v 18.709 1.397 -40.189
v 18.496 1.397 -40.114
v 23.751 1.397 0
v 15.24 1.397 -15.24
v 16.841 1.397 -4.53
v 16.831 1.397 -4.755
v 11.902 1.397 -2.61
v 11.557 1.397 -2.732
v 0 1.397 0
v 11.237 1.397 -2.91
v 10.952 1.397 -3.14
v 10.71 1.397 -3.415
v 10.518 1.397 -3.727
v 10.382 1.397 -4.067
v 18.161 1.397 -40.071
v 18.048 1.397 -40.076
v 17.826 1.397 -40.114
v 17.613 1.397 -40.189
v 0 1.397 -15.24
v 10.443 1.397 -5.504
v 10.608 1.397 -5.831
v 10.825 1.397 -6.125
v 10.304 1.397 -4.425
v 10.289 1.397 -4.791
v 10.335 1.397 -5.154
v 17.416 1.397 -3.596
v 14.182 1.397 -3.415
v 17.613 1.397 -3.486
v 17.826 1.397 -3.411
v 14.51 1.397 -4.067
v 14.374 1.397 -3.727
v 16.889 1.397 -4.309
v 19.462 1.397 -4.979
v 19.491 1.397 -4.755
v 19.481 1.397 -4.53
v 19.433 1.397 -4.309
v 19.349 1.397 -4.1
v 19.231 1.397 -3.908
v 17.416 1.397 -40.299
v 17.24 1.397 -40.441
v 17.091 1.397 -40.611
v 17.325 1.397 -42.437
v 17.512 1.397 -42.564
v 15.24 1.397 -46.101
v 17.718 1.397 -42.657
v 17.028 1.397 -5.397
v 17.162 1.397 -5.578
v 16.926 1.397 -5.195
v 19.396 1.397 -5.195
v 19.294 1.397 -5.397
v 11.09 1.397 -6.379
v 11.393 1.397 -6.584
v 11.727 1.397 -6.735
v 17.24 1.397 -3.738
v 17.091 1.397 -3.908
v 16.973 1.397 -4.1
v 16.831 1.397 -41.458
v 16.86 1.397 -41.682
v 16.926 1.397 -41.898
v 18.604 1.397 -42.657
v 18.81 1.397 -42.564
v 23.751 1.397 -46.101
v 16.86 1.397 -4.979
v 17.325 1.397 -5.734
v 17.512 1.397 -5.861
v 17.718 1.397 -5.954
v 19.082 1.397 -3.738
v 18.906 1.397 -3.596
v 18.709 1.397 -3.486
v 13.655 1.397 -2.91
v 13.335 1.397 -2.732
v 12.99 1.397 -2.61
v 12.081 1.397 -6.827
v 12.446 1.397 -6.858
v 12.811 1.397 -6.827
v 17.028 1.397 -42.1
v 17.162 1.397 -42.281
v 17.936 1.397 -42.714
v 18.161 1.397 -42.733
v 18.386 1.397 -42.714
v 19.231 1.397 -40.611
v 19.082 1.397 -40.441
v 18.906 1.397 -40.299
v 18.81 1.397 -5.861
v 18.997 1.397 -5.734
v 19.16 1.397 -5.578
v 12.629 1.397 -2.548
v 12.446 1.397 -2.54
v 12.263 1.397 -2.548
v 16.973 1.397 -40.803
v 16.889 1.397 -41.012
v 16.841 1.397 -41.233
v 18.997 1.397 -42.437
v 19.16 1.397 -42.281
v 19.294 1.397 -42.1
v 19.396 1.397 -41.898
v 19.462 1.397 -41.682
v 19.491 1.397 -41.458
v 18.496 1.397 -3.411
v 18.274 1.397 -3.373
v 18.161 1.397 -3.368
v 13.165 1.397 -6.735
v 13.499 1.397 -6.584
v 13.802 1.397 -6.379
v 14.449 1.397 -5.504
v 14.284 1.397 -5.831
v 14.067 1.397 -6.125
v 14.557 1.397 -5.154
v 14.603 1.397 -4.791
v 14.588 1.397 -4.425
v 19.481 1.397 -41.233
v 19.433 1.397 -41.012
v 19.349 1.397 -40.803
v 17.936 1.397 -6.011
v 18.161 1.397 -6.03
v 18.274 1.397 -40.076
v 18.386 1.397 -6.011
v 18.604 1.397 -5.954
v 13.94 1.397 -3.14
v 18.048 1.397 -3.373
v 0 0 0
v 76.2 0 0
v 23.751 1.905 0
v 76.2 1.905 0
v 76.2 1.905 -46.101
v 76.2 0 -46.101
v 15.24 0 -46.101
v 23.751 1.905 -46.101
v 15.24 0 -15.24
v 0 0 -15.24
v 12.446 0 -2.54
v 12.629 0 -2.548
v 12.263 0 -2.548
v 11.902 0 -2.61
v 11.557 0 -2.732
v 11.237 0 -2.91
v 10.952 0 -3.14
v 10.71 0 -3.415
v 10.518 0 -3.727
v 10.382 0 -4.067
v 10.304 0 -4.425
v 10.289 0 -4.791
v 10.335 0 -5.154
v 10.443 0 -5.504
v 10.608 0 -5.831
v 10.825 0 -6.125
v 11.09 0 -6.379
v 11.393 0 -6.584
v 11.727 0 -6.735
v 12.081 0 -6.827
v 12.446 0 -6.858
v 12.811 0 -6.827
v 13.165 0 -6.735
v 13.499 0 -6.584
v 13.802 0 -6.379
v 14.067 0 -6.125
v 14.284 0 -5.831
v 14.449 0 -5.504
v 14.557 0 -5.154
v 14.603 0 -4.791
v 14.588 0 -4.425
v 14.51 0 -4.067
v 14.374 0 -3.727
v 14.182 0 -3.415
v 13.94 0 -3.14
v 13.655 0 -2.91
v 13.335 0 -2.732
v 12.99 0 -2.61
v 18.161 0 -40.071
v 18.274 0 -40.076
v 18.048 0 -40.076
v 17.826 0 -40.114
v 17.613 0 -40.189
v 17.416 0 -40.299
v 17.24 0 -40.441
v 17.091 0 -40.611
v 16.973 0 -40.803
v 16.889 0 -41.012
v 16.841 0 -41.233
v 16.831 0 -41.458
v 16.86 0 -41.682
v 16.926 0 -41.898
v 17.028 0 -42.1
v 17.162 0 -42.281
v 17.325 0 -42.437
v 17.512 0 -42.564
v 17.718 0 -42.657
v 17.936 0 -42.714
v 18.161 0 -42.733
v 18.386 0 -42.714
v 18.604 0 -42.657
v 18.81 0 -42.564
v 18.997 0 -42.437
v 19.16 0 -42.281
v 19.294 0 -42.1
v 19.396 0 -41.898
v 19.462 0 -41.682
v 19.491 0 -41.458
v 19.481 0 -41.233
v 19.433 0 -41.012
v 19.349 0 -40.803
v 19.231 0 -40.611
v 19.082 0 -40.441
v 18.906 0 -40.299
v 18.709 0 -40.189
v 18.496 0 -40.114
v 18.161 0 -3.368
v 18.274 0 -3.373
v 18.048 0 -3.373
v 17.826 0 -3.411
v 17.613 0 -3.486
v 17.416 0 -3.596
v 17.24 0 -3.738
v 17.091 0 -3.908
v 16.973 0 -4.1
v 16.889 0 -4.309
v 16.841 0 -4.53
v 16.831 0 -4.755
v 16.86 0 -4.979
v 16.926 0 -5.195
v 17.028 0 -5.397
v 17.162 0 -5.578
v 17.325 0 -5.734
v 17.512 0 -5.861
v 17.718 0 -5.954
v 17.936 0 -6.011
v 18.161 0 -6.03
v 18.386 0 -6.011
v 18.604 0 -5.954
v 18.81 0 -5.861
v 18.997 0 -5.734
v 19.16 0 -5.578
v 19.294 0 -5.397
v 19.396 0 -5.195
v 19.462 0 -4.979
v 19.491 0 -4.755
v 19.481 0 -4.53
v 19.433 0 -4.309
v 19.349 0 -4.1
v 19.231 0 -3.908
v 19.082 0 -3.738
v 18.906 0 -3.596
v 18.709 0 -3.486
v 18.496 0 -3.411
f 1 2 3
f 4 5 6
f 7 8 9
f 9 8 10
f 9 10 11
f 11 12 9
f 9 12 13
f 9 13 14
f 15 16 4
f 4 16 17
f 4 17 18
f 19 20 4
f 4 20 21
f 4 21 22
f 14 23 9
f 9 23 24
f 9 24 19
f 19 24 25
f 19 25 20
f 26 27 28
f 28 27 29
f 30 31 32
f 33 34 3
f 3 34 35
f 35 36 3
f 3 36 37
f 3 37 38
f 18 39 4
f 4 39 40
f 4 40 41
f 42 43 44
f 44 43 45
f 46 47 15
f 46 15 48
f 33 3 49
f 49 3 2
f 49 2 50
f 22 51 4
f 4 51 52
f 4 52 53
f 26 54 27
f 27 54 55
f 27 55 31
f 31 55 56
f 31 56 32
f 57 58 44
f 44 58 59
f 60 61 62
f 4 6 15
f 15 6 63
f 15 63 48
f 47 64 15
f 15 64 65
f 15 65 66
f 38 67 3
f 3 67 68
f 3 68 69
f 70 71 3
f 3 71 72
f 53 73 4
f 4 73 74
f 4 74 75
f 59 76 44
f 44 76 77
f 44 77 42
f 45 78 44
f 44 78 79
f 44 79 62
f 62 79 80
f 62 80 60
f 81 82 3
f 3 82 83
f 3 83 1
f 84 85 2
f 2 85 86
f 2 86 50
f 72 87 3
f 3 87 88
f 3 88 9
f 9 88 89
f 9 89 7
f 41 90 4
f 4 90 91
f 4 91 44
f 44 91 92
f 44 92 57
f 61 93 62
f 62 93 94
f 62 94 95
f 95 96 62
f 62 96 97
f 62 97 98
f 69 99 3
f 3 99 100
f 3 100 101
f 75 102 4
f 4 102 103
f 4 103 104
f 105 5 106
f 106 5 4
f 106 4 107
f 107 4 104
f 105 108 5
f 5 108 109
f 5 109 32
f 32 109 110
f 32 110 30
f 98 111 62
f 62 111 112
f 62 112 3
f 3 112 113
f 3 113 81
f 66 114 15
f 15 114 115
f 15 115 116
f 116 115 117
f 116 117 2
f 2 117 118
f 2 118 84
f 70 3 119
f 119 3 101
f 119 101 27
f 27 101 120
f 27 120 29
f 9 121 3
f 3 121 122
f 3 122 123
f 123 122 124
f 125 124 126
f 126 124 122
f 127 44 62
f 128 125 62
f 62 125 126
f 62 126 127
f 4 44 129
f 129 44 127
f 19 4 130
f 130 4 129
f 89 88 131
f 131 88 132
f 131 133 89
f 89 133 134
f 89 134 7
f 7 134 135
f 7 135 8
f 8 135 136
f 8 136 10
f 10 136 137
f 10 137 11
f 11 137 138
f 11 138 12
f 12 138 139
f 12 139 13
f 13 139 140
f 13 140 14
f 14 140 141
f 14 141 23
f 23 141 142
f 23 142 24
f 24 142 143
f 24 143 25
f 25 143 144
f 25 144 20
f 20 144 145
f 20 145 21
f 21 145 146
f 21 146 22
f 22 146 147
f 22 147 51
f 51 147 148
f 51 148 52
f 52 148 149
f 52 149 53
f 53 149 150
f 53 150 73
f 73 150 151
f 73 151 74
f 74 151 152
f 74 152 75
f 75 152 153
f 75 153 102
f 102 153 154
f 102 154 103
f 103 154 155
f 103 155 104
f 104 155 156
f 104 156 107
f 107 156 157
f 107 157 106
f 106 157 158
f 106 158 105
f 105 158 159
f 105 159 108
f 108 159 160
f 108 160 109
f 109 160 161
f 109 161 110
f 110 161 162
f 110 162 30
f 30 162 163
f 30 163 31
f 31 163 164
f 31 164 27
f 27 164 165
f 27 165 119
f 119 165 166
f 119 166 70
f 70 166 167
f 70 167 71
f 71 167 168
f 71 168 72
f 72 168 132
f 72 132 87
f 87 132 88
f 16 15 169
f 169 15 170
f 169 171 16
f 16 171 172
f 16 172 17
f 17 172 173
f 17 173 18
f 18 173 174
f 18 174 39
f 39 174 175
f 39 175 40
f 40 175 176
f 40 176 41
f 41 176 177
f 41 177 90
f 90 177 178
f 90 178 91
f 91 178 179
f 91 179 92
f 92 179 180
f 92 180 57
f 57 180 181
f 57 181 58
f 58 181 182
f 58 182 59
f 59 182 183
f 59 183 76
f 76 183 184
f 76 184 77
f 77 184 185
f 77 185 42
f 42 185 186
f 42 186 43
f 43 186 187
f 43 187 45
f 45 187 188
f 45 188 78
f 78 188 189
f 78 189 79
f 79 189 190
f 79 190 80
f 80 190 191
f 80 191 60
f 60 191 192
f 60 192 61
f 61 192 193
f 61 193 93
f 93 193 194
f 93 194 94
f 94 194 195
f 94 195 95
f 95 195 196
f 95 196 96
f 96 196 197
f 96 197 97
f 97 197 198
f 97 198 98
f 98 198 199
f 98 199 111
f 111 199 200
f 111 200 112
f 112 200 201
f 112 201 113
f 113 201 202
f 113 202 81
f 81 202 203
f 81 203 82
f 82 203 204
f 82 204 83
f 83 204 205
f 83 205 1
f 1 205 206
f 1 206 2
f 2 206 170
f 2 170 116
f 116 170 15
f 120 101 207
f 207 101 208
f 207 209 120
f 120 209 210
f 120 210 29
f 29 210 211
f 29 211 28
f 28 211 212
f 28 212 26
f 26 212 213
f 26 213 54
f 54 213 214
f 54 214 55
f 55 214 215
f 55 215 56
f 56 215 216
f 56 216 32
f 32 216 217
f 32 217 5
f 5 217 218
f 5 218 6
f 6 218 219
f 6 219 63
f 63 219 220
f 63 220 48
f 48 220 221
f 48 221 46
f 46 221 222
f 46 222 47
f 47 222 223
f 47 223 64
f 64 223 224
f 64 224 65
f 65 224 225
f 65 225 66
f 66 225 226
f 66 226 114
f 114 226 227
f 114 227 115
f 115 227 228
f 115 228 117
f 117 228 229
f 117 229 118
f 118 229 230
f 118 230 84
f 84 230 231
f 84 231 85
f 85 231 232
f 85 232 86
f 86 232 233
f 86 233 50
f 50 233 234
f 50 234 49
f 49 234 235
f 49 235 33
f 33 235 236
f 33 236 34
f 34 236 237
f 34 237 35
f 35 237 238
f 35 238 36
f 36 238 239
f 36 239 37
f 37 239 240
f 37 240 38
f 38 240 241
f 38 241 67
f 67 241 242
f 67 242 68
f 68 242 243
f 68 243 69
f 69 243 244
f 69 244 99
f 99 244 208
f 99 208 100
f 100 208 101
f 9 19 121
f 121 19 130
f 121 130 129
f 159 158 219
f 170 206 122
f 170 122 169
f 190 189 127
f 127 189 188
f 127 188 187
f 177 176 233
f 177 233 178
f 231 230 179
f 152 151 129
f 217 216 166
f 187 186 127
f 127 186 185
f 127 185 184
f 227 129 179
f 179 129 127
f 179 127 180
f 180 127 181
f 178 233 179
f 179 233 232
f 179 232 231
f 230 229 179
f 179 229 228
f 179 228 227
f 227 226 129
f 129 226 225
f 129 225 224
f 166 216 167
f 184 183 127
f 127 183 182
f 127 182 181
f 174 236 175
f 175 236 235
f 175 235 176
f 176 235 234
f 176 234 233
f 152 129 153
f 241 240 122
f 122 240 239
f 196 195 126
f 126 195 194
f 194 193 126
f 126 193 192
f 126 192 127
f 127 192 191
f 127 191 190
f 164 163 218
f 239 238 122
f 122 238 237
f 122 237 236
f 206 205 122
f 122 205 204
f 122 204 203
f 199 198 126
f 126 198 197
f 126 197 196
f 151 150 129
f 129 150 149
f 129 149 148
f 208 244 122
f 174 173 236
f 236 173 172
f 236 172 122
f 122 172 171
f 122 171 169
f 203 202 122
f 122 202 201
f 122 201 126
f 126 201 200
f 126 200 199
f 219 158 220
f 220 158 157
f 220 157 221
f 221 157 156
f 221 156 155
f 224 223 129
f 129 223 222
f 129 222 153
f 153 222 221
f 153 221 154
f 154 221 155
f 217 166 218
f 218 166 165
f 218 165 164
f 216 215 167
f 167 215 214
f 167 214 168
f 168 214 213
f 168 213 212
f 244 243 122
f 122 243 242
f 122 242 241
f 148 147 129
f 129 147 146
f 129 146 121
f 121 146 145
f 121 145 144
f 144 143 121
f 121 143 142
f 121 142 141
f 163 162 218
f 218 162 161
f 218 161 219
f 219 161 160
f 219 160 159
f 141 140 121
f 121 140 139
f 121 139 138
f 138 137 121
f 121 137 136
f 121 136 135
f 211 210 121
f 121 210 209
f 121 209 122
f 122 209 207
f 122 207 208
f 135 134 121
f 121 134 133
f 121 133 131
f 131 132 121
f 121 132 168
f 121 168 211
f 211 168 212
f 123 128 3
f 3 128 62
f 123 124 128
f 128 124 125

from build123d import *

# Parameters (mm, degrees)
SKETCH1_R           = 2.159
SKETCH1_R_2         = 1.330733042
BOSS_EXTRUDE1_DEPTH = 1.397
SKETCH1_3_W         = 52.448824391
SKETCH1_3_H         = 46.101
BOSS_EXTRUDE2_DEPTH = 1.905


with BuildPart() as part:
    # Sketch1 → Boss-Extrude1 (new body)
    with BuildSketch(Plane(origin=(0, 0, 0), x_dir=(1, 0, 0), z_dir=(0, 1, 0))):
        Polygon((0, 15.24), (0, 0), (76.2, 0), (76.2, 46.101), (15.24, 46.101), (15.24, 15.24), align=None)
        with Locations((12.446, 4.699)):
            Circle(SKETCH1_R, mode=Mode.SUBTRACT)
        with Locations((18.161, 4.699)):
            Circle(SKETCH1_R_2, mode=Mode.SUBTRACT)
        with Locations((18.161, 41.402)):
            Circle(SKETCH1_R_2, mode=Mode.SUBTRACT)
    extrude(amount=BOSS_EXTRUDE1_DEPTH)

    # Sketch1<3> → Boss-Extrude2 (add)
    with BuildSketch(Plane(origin=(0, 0, 0), x_dir=(1, 0, 0), z_dir=(0, 1, 0))):
        with Locations((49.975587805, 23.0505)):
            Rectangle(SKETCH1_3_W, SKETCH1_3_H)
    extrude(amount=BOSS_EXTRUDE2_DEPTH)


solid = part.part
